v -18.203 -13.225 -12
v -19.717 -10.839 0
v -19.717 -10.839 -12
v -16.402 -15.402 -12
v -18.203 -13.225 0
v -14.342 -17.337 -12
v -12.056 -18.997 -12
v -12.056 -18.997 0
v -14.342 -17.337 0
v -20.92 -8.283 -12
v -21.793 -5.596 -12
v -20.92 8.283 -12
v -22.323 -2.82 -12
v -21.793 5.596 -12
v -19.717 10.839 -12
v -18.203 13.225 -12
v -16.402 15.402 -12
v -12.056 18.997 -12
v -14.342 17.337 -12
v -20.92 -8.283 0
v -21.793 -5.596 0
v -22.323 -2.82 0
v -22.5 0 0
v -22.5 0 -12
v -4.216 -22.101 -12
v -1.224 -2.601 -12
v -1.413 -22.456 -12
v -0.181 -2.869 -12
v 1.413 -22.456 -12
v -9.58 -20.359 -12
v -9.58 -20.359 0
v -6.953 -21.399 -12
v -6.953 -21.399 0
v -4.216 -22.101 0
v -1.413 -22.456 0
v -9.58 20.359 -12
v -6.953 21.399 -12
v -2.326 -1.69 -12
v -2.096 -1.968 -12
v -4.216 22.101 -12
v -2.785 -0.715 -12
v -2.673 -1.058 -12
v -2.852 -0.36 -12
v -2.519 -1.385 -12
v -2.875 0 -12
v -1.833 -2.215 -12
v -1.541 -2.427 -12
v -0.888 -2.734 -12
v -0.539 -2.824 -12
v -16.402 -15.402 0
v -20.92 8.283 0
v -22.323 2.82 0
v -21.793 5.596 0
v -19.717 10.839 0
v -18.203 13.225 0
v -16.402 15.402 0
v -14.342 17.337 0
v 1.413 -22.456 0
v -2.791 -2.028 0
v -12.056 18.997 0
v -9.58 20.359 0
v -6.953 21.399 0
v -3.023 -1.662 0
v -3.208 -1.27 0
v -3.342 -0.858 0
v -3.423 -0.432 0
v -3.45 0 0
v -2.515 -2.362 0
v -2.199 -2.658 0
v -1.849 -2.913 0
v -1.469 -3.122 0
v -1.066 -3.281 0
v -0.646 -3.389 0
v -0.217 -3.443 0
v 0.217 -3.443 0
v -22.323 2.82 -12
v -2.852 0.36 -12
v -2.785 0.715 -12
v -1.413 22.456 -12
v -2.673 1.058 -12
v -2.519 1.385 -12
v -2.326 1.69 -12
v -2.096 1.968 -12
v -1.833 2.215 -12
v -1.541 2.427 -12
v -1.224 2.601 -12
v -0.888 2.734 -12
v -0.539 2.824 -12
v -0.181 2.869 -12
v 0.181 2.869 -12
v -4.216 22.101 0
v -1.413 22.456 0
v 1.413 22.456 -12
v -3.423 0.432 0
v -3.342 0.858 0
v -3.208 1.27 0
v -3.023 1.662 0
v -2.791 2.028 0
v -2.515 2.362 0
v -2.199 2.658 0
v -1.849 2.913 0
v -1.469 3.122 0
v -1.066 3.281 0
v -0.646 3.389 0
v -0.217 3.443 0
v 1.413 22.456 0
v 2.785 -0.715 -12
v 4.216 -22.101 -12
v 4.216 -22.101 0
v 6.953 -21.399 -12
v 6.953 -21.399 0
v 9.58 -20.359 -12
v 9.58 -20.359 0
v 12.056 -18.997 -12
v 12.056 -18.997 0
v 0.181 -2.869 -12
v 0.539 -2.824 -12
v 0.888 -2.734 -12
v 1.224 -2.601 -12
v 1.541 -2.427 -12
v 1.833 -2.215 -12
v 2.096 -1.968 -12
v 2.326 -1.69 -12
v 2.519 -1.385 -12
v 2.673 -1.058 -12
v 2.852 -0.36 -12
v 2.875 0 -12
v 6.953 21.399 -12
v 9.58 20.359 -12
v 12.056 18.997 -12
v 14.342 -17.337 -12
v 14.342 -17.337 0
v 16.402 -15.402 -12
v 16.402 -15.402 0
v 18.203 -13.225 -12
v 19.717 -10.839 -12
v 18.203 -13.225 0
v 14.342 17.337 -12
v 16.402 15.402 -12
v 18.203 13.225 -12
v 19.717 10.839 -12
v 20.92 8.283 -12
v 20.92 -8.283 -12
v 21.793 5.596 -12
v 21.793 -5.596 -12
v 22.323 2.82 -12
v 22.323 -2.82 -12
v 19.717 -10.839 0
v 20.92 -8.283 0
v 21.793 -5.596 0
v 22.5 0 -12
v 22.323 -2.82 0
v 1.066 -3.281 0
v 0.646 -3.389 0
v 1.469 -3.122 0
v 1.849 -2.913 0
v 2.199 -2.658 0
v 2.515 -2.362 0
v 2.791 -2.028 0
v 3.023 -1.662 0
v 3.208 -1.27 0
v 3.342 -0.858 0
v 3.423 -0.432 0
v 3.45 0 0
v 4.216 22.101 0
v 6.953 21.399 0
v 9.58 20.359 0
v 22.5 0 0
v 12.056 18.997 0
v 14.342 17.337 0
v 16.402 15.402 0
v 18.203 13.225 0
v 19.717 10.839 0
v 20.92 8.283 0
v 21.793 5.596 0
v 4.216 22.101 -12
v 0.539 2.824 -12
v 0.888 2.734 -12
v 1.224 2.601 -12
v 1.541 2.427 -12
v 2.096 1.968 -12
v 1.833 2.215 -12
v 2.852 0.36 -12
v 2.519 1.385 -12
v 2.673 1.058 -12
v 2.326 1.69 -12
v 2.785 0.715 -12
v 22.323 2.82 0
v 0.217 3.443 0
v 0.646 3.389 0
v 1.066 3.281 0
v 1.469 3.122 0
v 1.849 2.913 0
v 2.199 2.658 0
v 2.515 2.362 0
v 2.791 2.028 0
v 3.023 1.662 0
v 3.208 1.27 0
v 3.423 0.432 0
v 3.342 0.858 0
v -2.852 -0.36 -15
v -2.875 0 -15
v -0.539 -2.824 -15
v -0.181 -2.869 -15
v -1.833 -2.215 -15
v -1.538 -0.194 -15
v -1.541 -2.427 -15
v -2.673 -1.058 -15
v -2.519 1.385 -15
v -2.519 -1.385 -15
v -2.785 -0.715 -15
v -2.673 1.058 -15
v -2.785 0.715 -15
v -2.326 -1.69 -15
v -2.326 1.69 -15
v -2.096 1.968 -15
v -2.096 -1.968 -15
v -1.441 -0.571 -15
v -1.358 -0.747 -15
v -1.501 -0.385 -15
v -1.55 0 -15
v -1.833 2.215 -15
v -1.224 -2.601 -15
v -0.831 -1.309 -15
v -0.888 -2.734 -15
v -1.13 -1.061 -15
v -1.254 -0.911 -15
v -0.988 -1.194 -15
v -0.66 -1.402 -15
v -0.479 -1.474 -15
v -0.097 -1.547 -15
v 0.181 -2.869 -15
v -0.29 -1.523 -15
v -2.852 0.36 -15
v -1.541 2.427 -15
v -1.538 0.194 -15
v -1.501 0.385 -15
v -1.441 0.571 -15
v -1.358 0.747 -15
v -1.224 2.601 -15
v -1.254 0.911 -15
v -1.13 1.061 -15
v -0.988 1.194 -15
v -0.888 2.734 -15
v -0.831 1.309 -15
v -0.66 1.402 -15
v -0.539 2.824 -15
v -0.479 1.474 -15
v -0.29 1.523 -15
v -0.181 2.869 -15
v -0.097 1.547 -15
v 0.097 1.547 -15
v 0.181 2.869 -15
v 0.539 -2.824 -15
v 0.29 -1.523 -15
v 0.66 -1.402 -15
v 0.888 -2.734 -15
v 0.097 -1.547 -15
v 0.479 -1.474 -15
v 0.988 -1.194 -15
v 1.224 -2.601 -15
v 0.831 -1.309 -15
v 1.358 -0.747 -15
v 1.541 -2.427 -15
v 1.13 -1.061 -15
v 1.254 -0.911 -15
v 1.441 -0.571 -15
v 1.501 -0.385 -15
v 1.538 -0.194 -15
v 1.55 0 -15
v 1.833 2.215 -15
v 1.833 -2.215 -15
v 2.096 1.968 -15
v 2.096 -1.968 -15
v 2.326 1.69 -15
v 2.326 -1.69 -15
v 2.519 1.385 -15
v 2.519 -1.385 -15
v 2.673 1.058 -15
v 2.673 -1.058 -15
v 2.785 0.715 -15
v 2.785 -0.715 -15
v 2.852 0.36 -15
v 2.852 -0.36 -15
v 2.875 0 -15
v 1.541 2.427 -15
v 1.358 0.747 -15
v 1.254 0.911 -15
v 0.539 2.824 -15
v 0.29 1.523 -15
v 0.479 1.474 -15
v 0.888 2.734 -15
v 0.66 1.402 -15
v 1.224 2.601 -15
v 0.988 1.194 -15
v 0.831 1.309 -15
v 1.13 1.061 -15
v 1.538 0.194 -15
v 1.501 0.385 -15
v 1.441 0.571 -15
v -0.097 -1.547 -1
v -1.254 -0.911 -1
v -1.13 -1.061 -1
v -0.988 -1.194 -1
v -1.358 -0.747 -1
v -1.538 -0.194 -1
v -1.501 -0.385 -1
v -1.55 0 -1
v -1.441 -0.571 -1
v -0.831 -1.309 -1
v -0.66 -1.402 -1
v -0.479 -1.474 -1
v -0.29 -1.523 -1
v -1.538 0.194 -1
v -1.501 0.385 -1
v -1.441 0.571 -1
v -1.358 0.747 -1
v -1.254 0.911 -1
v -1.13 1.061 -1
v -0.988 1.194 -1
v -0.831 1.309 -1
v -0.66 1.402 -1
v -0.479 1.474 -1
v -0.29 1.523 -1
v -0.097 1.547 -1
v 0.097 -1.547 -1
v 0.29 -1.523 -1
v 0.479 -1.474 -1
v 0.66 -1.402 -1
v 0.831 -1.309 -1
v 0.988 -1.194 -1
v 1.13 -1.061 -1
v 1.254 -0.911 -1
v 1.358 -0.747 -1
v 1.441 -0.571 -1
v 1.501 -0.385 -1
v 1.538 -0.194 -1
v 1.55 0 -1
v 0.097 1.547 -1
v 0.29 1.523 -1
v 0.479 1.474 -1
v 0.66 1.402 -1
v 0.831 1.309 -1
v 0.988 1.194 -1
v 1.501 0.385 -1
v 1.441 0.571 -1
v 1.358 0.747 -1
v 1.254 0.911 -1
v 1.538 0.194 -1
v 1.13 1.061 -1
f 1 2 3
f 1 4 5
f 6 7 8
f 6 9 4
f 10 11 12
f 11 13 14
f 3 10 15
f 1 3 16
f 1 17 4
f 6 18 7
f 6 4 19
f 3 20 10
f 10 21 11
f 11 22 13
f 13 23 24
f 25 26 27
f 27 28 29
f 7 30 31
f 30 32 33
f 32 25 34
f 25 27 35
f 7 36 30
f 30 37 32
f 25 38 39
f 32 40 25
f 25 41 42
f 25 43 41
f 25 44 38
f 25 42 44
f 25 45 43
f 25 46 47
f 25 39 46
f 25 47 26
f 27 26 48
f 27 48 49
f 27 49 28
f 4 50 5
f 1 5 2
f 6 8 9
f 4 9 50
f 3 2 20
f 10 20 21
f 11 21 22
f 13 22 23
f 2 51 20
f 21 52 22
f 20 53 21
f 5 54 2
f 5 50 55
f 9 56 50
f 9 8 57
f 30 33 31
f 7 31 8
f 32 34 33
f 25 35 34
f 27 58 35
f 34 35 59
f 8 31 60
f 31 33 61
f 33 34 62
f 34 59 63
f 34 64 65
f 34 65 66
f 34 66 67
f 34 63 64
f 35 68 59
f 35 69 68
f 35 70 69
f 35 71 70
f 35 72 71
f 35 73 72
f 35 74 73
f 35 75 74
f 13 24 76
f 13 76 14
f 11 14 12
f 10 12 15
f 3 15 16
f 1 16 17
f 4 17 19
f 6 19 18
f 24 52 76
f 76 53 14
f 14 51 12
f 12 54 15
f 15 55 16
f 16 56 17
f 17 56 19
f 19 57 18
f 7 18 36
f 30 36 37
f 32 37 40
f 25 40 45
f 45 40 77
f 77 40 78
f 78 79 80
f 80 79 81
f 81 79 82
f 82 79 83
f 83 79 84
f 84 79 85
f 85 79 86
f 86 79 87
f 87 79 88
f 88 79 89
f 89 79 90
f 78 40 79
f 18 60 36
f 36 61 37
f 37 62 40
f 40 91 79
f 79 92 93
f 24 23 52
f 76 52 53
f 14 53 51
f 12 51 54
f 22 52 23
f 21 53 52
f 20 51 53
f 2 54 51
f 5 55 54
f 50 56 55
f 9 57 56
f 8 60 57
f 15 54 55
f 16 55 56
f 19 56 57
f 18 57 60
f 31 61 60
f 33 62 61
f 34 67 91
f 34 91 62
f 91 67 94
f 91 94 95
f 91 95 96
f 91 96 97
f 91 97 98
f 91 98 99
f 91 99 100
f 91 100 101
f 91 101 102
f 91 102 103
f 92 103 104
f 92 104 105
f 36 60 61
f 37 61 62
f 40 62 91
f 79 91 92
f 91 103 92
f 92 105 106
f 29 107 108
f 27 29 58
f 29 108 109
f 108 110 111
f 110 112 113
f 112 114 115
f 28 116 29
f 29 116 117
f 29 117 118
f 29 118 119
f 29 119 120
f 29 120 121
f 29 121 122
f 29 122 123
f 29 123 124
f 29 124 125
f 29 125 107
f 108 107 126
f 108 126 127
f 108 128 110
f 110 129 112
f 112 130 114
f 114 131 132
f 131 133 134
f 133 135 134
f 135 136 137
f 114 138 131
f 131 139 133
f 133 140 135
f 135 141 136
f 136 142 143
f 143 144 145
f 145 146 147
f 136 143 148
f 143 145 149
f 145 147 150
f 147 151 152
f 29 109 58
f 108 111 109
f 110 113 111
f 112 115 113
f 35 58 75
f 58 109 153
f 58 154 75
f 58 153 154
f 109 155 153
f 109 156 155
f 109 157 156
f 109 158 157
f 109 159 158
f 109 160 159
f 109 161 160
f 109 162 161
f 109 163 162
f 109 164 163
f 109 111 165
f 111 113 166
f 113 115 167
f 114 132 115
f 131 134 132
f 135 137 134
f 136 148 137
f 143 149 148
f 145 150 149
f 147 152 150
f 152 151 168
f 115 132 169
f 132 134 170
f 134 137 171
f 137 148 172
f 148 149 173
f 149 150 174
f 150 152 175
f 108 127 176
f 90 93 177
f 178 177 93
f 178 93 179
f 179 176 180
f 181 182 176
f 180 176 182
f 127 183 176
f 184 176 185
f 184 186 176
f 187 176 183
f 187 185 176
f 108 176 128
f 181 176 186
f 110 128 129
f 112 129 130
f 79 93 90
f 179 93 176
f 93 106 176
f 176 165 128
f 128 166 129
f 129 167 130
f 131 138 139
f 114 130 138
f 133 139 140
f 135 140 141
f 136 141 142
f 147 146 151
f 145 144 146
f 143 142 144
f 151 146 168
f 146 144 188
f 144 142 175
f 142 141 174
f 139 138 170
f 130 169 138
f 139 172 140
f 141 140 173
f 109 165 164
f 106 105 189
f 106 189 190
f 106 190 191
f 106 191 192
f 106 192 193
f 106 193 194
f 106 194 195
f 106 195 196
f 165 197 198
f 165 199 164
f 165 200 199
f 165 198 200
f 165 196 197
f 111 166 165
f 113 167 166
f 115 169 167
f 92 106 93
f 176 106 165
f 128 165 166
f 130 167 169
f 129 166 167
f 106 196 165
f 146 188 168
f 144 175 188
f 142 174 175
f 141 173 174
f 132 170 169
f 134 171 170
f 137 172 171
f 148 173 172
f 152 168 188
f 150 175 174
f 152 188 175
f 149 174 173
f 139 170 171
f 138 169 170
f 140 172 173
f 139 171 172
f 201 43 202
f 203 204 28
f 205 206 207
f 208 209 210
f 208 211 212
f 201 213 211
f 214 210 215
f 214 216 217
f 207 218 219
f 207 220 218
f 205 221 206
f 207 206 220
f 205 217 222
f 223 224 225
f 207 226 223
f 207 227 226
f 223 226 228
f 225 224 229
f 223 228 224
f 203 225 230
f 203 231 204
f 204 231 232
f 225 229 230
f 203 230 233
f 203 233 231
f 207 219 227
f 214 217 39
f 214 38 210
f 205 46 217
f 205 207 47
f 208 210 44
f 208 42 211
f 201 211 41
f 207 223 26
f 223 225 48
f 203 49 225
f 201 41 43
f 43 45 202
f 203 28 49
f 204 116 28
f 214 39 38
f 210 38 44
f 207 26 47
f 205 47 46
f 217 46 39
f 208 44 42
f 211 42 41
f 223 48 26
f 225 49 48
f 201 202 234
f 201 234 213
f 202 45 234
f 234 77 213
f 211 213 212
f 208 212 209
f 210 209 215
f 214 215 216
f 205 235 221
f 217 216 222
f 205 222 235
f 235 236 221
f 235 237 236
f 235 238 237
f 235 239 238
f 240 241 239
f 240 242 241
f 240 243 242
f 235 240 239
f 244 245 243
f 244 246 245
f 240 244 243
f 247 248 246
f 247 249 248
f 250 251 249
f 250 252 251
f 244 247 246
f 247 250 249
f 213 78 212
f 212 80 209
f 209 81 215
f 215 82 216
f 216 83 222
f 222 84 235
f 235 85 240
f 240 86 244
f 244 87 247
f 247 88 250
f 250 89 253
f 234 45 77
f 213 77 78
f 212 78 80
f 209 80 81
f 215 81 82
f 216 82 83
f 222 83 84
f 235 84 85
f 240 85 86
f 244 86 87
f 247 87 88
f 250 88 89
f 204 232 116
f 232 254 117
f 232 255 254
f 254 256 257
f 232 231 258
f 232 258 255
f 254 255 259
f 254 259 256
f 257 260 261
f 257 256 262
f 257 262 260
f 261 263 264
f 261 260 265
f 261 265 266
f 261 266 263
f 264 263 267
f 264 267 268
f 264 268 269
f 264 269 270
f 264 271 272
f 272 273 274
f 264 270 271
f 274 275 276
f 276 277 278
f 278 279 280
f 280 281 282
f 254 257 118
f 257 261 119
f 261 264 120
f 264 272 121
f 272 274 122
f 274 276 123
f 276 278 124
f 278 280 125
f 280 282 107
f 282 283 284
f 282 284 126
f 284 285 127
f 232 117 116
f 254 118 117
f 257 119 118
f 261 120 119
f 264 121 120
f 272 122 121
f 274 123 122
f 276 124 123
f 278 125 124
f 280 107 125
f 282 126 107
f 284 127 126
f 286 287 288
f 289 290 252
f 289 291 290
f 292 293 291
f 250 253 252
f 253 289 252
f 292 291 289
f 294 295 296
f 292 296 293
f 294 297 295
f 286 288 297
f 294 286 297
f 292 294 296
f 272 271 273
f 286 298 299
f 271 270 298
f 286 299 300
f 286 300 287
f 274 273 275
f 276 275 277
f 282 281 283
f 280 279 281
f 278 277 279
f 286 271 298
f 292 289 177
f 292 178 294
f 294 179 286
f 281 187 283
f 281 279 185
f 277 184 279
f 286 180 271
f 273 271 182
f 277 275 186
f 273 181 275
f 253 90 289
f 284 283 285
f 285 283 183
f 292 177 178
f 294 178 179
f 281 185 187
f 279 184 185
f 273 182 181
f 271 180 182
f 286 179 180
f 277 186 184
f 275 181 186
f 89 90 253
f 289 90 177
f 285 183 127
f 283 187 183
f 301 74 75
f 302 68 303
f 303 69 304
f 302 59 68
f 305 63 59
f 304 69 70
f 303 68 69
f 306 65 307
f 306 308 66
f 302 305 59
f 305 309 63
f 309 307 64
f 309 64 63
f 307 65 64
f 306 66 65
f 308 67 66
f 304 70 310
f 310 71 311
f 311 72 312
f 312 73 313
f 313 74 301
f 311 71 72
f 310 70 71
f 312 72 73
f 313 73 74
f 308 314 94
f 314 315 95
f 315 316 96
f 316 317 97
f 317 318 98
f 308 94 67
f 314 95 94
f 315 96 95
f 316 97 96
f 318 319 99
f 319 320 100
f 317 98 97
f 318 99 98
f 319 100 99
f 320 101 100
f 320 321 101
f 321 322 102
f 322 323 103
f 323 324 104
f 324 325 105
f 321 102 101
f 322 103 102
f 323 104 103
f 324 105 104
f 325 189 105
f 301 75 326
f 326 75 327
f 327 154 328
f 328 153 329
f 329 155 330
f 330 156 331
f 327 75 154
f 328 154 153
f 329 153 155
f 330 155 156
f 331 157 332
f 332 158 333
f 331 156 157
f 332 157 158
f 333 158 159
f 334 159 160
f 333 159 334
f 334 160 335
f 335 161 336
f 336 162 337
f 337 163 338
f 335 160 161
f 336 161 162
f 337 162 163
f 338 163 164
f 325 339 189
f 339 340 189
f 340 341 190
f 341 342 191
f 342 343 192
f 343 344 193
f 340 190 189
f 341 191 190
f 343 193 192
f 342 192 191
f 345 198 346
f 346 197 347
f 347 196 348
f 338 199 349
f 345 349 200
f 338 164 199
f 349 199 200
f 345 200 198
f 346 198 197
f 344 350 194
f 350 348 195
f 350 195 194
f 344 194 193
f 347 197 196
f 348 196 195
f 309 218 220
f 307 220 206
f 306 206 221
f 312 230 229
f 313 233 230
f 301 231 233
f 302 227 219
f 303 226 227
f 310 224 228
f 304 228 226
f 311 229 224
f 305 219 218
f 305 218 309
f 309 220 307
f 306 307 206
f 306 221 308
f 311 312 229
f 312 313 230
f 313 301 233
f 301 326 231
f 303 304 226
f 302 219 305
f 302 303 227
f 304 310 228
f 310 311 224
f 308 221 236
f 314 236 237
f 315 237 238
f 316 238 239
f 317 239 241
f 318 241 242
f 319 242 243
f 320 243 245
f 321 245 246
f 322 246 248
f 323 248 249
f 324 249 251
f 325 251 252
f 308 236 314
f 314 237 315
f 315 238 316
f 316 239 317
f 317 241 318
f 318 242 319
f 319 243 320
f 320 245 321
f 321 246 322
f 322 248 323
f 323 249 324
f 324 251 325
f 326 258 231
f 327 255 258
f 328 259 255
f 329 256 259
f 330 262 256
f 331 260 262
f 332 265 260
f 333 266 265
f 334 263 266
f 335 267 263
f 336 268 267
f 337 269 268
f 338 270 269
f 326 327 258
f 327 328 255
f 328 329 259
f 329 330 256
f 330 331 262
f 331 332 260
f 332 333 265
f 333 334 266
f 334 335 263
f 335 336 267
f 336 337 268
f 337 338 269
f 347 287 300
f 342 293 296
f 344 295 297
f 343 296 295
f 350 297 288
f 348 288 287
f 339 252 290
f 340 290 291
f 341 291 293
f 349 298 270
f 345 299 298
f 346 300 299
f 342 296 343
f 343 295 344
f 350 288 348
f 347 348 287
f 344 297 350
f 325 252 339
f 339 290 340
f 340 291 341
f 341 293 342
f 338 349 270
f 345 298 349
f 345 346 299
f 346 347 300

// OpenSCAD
$fn = 50;

difference() {
	union() {
		translate(v = [0, 0, -12.0]) {
			cylinder(h = 12, r = 22.5);
		}
		#translate(v = [0, 0, -15.0]) {
			cylinder(h = 15, r = 2.875);
		}
	}
	union() {
		translate(v = [0, 0, 0]) {
			rotate(a = [0, 0, 0]) {
				difference() {
					union() {
						translate(v = [0, 0, -15.0]) {
							cylinder(h = 15, r = 1.25);
						}
						translate(v = [0, 0, -1.0]) {
							cylinder(h = 1.0, r1 = 1.55, r2 = 3.45);
						}
						translate(v = [0, 0, -15.0]) {
							cylinder(h = 15, r = 1.55);
						}
						translate(v = [0, 0, -15.0]) {
							cylinder(h = 15, r = 1.25);
						}
					}
					union();
				}
			}
		}
	}
}
